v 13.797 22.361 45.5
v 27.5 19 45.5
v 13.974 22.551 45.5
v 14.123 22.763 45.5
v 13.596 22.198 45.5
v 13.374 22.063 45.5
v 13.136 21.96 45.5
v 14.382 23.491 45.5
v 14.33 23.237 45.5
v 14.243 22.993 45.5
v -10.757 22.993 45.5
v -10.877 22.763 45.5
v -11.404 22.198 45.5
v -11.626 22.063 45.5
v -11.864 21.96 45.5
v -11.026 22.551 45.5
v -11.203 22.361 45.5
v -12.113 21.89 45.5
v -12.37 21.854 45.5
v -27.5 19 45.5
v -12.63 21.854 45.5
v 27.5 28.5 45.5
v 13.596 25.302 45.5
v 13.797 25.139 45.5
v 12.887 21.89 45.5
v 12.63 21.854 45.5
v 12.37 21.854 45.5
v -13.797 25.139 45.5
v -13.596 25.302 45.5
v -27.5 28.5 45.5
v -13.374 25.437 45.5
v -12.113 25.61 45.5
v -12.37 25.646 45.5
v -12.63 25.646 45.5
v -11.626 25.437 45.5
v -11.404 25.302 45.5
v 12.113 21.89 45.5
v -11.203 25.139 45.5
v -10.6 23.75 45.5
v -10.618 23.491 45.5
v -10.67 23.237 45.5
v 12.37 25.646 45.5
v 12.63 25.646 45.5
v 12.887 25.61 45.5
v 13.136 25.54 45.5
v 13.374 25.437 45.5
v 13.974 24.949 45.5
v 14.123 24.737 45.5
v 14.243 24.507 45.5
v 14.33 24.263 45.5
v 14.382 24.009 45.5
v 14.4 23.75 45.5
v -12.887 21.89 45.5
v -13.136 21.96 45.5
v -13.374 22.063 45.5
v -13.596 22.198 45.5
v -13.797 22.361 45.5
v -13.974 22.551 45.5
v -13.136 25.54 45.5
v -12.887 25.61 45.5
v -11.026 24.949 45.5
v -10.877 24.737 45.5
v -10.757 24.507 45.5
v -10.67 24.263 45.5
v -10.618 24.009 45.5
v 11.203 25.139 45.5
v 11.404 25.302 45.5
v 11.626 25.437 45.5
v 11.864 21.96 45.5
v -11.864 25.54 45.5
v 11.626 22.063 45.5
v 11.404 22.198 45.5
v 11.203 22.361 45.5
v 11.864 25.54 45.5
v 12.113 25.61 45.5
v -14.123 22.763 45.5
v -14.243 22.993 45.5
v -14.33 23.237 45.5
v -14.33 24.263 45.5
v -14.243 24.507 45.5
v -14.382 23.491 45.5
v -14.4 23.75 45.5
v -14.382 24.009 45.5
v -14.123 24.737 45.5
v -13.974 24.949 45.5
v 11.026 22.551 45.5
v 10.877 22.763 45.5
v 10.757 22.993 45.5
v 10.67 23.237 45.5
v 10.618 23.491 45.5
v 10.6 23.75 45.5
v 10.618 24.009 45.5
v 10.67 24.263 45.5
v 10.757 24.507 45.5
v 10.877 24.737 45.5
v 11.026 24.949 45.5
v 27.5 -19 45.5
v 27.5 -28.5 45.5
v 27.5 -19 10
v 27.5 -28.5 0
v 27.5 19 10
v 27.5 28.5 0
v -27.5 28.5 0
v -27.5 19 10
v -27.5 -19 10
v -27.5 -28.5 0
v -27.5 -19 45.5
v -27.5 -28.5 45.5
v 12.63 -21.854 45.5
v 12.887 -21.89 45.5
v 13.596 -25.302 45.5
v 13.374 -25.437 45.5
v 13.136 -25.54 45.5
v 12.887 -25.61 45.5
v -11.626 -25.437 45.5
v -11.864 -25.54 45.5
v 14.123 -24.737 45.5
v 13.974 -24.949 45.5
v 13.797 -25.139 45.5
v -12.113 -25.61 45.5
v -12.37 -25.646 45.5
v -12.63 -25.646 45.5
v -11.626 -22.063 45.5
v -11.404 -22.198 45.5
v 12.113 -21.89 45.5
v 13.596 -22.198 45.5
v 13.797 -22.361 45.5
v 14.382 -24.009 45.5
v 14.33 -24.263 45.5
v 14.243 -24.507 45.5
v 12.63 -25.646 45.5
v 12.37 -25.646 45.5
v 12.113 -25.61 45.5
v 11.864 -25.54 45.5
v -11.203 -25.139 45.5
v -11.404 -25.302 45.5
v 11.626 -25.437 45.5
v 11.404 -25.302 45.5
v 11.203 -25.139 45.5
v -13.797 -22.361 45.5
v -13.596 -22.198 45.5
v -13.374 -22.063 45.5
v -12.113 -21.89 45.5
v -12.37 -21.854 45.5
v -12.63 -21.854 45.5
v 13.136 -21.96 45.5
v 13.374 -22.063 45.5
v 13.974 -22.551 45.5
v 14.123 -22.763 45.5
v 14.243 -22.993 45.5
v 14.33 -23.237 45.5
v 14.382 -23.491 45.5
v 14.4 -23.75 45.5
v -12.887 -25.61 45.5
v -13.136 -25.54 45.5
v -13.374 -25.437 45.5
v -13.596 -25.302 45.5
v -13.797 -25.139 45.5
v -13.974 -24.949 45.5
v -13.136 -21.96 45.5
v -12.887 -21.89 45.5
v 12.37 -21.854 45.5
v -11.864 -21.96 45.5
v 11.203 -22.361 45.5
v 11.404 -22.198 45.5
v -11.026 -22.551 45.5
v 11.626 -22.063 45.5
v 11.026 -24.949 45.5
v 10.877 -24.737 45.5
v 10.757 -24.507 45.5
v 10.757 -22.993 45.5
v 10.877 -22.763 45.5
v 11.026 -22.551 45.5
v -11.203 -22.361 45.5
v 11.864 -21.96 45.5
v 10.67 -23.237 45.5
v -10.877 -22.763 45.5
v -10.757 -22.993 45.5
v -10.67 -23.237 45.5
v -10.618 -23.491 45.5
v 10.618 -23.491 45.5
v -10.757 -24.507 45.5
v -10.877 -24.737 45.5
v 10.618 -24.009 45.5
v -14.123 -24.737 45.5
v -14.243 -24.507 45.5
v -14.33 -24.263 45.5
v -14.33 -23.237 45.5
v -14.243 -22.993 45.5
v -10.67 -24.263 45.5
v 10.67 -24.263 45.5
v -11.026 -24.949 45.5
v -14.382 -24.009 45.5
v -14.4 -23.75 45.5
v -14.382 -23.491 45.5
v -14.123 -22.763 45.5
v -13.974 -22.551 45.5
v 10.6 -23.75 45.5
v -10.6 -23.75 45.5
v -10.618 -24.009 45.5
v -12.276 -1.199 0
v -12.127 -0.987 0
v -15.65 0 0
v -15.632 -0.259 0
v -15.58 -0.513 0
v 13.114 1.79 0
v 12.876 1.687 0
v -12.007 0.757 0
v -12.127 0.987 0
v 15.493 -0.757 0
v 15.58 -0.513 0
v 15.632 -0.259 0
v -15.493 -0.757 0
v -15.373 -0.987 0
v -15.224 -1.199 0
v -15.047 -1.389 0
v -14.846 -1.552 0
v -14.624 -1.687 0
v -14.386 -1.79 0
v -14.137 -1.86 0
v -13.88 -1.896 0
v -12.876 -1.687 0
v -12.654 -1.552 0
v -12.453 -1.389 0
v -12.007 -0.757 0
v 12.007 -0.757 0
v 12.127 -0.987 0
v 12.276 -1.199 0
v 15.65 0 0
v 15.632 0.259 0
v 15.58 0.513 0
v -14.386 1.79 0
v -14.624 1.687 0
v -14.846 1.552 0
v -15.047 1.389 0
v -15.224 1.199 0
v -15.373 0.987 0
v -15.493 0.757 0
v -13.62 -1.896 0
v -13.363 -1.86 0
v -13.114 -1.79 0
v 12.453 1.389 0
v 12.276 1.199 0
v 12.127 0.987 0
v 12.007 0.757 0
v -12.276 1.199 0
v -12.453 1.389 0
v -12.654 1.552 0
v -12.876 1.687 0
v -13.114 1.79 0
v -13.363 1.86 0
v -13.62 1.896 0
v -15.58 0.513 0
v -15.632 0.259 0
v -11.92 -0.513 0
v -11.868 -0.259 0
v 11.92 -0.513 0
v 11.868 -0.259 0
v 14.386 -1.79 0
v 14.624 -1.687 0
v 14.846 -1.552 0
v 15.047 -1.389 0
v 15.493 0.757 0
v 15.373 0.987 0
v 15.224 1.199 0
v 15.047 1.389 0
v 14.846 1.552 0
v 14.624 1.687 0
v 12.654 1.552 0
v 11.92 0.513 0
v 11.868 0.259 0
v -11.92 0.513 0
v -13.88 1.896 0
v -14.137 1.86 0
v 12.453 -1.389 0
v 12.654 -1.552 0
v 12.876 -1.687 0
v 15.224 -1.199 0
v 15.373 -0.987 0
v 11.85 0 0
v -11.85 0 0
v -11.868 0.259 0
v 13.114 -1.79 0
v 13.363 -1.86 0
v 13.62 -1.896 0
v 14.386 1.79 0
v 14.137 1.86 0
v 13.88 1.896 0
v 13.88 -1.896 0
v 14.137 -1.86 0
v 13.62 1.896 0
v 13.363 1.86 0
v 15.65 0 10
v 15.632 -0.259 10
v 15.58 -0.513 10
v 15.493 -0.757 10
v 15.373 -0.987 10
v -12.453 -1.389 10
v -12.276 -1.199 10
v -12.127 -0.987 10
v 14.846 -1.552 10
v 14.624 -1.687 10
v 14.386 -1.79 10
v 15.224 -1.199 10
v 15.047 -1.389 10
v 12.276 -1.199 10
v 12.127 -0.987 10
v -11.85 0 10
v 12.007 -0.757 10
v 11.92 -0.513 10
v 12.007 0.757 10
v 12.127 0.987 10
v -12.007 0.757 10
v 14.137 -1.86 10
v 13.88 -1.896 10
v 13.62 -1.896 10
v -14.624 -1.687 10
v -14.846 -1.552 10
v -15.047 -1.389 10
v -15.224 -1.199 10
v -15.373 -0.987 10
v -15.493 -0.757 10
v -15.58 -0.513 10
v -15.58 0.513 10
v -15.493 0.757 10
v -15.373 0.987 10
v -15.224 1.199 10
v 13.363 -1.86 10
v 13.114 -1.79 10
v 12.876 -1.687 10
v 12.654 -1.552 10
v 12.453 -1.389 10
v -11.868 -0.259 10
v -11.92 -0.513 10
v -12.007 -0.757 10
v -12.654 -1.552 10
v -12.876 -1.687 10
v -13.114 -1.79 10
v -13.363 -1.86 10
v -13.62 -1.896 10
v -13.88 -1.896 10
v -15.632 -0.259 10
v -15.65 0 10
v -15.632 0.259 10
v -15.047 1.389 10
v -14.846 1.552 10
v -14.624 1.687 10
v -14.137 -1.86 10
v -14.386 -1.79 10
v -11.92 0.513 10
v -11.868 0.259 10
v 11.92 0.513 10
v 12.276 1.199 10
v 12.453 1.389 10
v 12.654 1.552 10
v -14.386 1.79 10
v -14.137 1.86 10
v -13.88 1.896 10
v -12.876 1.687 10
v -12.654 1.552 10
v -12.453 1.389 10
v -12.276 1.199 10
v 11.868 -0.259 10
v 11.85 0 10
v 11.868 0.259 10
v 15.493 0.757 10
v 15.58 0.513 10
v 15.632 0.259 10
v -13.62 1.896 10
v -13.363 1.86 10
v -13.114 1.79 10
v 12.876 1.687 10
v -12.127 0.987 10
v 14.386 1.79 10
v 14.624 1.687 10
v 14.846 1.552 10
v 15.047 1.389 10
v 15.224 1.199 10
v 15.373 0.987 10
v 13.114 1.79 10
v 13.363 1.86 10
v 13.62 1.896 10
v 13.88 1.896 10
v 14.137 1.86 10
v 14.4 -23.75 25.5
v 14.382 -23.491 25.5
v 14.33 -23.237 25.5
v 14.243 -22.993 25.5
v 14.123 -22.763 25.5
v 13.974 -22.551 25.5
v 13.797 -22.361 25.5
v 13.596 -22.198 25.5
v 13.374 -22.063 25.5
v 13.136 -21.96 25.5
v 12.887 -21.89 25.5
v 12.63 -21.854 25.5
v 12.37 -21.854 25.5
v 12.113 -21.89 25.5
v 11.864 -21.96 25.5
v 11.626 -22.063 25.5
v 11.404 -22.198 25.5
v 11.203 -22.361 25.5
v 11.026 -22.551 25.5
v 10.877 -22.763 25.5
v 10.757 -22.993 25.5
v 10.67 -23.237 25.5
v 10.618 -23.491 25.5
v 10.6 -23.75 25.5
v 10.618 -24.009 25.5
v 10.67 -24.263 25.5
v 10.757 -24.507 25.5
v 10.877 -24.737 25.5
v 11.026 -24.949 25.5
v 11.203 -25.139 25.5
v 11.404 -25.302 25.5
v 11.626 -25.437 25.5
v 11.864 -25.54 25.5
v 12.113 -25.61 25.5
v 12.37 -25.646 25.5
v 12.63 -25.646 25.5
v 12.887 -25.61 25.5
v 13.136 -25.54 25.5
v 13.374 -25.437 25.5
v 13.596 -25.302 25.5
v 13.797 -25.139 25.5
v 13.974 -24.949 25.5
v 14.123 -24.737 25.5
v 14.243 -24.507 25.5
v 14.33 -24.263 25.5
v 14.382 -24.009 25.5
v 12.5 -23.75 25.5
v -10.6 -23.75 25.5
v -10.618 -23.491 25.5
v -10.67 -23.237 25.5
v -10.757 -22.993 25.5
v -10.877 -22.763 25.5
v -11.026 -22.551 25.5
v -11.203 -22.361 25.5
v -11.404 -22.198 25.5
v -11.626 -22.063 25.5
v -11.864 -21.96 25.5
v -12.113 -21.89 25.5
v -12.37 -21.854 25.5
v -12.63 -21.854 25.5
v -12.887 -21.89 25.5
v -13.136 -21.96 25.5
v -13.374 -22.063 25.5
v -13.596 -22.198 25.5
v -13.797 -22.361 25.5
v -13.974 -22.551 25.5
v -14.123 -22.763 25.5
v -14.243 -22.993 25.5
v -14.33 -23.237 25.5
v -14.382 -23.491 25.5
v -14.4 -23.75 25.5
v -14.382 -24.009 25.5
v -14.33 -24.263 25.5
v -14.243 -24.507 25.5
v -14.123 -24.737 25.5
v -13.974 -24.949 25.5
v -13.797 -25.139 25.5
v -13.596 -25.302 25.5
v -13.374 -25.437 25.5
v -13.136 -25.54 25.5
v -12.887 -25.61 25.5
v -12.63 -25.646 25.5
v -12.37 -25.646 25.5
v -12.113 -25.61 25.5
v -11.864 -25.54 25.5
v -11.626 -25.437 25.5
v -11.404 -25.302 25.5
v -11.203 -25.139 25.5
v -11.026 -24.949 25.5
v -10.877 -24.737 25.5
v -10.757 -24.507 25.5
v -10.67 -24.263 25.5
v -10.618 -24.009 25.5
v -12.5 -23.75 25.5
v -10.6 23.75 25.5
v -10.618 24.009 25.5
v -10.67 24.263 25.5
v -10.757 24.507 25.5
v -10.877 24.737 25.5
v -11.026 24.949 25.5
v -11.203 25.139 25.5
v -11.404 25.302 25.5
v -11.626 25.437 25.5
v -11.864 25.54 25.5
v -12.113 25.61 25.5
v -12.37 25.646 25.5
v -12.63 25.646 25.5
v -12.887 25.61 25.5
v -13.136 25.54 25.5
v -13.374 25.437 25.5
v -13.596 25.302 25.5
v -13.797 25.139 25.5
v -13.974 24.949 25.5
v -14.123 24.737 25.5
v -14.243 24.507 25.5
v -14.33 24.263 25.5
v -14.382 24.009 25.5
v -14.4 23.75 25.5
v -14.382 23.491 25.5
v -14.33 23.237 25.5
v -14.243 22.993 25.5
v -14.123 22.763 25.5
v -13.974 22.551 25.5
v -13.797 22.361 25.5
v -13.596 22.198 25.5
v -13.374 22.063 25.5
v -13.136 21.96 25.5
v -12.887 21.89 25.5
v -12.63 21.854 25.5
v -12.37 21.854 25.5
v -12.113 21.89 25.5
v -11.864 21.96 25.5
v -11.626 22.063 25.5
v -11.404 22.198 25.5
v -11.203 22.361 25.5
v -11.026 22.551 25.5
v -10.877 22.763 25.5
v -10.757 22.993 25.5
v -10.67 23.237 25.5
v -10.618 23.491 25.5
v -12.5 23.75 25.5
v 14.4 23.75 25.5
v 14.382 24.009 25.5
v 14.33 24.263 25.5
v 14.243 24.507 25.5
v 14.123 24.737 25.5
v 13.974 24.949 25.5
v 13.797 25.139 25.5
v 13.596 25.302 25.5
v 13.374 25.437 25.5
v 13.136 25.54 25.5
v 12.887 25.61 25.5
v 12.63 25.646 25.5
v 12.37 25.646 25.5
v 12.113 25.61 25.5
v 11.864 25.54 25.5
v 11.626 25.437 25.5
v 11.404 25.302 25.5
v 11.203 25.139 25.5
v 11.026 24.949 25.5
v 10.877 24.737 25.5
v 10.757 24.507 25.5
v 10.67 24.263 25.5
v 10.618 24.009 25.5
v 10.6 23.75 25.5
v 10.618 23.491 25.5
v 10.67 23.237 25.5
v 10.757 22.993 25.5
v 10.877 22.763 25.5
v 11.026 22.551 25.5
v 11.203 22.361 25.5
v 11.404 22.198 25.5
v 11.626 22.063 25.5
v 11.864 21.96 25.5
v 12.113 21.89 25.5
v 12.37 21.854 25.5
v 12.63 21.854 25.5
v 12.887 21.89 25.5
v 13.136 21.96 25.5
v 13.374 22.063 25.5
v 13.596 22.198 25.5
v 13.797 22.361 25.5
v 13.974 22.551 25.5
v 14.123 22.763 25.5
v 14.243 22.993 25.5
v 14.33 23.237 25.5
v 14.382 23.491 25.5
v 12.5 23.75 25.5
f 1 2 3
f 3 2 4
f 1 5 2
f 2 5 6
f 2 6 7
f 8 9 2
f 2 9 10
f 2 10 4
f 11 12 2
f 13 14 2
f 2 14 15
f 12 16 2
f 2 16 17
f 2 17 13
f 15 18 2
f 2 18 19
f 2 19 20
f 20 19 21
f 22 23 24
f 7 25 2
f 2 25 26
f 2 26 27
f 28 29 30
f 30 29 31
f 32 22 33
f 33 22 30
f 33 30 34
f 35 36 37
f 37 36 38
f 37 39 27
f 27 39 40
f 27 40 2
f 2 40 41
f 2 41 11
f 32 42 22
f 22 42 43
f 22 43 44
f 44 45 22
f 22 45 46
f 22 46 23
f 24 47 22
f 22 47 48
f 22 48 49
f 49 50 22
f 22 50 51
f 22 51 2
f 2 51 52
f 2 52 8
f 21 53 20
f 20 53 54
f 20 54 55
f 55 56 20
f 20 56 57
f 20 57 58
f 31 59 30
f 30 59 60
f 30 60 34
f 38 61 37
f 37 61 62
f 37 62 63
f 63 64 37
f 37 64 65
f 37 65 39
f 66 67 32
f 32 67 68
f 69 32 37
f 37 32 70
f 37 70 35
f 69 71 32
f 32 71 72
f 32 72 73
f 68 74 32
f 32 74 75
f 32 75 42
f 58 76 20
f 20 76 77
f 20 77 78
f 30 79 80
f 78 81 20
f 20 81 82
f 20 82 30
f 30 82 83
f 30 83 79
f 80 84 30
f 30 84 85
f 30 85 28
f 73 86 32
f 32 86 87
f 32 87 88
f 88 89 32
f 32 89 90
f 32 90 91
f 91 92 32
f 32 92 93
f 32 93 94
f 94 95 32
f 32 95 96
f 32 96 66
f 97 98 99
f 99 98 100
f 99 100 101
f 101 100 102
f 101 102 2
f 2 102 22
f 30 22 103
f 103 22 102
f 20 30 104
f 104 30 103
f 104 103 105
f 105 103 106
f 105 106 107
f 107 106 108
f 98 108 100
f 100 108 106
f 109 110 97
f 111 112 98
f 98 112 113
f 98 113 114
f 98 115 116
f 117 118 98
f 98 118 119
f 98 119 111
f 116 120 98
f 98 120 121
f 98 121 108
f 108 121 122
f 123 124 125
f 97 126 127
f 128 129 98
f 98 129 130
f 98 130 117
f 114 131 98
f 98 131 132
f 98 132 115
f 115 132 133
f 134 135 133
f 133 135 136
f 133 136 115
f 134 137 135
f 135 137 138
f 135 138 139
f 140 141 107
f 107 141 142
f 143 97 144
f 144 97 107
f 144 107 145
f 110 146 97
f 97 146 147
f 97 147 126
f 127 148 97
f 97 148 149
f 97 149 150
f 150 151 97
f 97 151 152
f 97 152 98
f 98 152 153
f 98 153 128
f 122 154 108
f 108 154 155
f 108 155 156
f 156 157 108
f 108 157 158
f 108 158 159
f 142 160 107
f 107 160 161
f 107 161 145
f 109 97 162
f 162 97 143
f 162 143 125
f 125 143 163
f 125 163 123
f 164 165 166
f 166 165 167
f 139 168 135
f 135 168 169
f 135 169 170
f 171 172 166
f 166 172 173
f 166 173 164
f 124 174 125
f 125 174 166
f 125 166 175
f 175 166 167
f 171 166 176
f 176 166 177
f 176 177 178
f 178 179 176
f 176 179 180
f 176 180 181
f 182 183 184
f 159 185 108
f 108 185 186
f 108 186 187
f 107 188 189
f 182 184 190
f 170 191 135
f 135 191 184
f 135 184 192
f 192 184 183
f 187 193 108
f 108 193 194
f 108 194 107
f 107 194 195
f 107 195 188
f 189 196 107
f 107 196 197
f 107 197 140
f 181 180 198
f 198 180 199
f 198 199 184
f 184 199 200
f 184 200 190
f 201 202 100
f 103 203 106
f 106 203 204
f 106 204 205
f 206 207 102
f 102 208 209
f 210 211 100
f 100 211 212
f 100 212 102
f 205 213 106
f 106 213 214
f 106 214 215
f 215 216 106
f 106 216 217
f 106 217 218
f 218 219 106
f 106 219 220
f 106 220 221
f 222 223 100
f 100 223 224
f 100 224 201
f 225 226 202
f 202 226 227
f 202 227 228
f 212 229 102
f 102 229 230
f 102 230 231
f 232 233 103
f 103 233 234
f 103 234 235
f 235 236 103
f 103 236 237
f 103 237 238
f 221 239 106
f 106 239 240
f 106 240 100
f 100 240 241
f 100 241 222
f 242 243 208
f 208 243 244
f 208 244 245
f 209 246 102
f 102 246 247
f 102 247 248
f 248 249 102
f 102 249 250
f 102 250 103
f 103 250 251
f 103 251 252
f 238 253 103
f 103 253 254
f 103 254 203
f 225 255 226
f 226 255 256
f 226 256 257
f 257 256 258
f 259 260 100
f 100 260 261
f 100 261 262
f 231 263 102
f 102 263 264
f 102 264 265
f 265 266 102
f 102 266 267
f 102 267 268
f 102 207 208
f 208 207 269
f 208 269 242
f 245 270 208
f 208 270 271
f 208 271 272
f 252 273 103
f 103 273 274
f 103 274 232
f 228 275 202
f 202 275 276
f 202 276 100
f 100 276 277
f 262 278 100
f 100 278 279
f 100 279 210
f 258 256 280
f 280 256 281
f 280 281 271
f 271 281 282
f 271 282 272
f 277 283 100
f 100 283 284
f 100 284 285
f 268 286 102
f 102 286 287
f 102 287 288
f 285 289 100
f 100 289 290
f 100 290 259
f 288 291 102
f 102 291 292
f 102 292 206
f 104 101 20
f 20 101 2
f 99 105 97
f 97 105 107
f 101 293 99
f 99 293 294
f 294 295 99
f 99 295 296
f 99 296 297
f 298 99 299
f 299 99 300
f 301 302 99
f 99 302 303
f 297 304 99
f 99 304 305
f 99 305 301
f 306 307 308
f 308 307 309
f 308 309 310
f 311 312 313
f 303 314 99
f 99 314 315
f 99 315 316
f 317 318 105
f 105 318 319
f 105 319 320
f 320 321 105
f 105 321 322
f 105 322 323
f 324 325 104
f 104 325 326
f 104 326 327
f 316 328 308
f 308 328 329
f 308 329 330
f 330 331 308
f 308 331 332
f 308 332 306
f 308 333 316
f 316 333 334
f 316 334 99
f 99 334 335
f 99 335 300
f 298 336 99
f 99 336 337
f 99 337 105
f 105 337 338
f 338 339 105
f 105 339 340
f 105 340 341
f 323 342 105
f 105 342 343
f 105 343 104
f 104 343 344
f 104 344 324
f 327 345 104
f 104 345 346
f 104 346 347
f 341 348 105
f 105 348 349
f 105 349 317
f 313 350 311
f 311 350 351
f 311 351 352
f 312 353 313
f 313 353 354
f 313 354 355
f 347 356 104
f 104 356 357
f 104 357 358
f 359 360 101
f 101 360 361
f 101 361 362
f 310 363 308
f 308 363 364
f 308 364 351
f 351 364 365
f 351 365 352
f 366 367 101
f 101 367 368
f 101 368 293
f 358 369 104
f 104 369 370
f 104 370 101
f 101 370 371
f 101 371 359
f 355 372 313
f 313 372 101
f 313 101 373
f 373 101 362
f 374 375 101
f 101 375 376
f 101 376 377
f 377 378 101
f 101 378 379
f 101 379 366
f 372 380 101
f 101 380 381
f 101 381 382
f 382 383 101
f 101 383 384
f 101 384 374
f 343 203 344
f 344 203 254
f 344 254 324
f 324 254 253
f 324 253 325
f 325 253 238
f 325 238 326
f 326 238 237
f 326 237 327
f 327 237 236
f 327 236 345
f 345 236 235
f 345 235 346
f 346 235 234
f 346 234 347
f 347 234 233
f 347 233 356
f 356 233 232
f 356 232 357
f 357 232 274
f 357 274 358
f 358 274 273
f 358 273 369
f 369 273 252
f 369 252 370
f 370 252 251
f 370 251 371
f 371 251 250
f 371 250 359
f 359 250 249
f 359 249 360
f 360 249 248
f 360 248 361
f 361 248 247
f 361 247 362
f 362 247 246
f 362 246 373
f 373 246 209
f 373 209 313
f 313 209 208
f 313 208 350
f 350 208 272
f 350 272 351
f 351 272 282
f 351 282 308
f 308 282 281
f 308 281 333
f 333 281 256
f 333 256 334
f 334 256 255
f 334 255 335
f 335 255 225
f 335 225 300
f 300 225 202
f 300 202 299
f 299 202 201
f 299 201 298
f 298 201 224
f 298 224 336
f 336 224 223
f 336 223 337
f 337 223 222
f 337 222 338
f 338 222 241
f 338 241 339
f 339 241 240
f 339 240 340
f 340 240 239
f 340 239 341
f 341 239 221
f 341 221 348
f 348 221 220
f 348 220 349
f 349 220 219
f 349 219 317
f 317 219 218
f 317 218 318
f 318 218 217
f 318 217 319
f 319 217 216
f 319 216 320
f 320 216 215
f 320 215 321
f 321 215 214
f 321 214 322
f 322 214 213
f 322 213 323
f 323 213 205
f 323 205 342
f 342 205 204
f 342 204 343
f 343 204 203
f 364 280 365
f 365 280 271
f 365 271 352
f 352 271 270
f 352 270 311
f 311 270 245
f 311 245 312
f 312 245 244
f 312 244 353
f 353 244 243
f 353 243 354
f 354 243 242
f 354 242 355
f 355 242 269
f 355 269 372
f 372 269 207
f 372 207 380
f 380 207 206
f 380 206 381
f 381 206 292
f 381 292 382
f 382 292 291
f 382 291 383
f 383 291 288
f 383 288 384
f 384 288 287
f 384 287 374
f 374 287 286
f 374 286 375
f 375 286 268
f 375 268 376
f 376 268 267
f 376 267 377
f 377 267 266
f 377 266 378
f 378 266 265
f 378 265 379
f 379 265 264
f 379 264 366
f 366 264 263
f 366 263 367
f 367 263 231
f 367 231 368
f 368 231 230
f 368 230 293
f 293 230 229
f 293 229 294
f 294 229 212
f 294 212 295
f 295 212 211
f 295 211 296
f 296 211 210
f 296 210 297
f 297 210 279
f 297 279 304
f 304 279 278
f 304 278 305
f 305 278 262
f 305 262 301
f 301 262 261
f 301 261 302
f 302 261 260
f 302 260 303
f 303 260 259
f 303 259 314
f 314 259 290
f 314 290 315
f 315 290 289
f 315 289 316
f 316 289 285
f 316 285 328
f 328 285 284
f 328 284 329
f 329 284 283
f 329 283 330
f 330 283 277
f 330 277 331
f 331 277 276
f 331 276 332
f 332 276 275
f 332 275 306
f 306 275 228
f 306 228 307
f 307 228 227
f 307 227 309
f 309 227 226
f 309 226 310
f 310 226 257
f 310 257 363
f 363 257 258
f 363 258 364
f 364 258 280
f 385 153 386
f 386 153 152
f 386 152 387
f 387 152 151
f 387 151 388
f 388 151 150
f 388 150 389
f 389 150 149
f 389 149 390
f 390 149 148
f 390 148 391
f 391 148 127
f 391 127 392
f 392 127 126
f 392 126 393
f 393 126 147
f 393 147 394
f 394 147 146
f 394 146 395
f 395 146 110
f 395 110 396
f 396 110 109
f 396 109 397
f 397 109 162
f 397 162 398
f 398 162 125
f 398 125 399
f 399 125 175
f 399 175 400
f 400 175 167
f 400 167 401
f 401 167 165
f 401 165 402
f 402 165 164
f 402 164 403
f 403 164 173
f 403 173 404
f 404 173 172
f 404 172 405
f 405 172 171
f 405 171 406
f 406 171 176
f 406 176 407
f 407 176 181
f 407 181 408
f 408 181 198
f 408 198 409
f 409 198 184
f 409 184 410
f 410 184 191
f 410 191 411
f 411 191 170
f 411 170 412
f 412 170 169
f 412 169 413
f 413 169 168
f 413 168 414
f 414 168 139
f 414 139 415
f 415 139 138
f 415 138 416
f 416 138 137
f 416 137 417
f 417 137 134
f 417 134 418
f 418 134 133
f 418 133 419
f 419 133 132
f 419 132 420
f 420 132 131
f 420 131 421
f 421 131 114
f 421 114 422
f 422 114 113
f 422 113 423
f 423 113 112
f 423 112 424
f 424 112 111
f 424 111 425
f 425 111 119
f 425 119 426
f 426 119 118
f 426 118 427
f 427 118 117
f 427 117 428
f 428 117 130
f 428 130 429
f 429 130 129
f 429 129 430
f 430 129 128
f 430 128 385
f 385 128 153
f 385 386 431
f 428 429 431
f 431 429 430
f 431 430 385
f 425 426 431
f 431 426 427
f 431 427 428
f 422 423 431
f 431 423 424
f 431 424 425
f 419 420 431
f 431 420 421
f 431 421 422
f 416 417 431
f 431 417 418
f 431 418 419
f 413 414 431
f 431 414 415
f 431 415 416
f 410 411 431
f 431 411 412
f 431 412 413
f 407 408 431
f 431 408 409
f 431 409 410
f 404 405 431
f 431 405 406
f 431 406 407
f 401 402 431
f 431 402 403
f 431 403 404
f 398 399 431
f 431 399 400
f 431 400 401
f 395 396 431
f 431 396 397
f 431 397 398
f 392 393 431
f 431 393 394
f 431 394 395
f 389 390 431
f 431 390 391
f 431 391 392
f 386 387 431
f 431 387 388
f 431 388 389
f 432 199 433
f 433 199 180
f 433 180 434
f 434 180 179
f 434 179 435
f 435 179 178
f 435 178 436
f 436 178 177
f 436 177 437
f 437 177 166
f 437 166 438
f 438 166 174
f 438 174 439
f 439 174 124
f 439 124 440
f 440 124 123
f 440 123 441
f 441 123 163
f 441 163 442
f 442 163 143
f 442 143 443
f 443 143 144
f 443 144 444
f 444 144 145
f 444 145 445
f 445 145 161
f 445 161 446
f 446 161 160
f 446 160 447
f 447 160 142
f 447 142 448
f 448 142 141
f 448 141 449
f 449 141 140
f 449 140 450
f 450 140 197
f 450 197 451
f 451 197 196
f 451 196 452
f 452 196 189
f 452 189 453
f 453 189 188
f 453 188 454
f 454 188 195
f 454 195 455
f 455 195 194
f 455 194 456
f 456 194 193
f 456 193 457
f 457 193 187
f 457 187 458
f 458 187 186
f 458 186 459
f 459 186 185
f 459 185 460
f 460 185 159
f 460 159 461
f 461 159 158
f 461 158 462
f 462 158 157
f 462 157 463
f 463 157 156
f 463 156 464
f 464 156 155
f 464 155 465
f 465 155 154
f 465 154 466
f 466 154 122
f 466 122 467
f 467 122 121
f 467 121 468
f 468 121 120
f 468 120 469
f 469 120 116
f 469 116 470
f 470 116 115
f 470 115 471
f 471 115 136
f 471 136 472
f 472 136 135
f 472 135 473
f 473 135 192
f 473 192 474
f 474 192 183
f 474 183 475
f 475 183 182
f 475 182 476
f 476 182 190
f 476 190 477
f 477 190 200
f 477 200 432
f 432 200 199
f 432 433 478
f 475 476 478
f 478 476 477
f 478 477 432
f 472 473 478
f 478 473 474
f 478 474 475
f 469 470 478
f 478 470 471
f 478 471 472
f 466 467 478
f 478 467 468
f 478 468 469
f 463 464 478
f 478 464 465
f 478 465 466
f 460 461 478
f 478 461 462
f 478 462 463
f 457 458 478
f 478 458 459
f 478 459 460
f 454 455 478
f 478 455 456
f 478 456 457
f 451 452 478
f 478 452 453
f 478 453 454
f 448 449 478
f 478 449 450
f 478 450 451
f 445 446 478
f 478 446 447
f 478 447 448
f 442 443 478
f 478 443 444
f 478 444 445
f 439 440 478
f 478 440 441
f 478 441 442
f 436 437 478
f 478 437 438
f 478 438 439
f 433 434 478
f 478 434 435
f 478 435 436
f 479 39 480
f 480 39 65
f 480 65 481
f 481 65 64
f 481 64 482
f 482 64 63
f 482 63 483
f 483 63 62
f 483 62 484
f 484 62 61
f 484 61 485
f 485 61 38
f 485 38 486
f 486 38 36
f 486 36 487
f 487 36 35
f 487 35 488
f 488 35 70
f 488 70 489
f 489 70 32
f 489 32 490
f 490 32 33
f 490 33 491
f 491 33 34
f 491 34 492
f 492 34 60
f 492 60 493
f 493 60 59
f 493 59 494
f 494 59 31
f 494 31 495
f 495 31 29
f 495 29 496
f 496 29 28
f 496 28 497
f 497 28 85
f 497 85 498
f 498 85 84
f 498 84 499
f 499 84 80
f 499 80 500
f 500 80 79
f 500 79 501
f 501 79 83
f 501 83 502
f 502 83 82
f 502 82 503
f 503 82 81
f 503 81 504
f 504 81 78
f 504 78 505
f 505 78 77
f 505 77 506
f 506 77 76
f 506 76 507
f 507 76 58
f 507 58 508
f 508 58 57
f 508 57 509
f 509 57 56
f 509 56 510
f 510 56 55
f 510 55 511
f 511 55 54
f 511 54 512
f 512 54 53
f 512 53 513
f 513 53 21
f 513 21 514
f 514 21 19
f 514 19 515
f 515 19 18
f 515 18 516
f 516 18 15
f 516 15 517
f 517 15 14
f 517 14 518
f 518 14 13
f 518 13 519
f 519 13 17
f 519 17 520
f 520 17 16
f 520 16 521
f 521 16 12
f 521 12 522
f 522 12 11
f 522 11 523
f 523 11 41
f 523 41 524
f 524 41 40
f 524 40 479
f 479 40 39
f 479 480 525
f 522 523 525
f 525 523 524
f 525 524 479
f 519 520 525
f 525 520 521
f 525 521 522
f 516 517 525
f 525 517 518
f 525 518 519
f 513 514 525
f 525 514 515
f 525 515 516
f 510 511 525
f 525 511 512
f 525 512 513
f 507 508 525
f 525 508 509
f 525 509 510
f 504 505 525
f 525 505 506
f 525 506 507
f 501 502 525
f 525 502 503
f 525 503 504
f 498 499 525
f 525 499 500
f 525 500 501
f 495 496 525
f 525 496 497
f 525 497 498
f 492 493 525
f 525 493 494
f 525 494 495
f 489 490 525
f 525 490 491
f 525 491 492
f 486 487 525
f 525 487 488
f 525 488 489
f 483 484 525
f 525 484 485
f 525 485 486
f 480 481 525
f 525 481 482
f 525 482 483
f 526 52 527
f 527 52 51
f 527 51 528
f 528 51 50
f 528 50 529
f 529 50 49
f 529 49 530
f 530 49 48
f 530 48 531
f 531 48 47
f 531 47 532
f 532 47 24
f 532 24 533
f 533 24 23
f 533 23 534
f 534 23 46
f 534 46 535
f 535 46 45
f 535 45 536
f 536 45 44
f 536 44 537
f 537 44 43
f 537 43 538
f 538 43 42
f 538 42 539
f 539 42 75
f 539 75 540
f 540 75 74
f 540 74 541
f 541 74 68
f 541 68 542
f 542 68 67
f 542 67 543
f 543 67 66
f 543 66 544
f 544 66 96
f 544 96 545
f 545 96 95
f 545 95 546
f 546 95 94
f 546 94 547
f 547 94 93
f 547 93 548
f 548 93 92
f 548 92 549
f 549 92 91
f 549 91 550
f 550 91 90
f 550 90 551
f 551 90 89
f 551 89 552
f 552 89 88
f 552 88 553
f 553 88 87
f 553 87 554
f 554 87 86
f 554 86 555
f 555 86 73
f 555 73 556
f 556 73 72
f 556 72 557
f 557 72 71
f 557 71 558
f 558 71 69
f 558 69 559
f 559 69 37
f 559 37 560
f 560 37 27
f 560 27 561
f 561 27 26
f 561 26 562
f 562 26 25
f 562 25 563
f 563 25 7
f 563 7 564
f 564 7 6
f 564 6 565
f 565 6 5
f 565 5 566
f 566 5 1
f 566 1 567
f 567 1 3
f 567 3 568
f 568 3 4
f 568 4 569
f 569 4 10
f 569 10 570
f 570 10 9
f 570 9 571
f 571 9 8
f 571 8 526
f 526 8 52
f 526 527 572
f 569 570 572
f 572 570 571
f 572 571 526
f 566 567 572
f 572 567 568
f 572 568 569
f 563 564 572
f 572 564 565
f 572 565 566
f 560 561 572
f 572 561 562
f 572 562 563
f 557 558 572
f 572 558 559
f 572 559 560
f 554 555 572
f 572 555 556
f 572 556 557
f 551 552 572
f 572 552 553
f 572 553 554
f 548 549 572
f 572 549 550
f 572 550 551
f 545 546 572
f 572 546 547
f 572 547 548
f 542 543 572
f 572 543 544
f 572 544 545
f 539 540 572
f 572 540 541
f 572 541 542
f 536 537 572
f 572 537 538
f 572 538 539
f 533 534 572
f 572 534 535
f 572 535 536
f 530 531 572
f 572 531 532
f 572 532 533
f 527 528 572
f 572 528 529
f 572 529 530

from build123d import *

# Parameters (mm, degrees)
SKETCH1_W           = 55
SKETCH1_H           = 57
BOSS_EXTRUDE1_DEPTH = 45.5
SKETCH2_W           = 55
SKETCH2_H           = 38
CUT_EXTRUDE1_DEPTH  = 35.5
SKETCH3_R           = 1.9
CUT_EXTRUDE2_DEPTH  = 10
SKETCH4_R           = 1.9
CUT_EXTRUDE3_DEPTH  = 20


with BuildPart() as part:
    # Sketch1 → Boss-Extrude1 (new body)
    with BuildSketch(Plane.XY):
        Rectangle(SKETCH1_W, SKETCH1_H)
    extrude(amount=BOSS_EXTRUDE1_DEPTH)

    # Sketch2 → Cut-Extrude1 (cut)
    with BuildSketch(Plane.XY.offset(45.5)):
        Rectangle(SKETCH2_W, SKETCH2_H)
    extrude(amount=-CUT_EXTRUDE1_DEPTH, mode=Mode.SUBTRACT)

    # Sketch3 → Cut-Extrude2 (cut)
    with BuildSketch(Plane(origin=(0, 0, 0), x_dir=(-1, 0, 0), z_dir=(0, 0, -1))):
        with Locations((-13.75, 0)):
            Circle(SKETCH3_R)
        with Locations((13.75, 0)):
            Circle(SKETCH3_R)
    extrude(amount=-CUT_EXTRUDE2_DEPTH, mode=Mode.SUBTRACT)

    # Sketch4 → Cut-Extrude3 (cut)
    with BuildSketch(Plane.XY.offset(45.5)):
        with Locations((-12.5, 23.75)):
            Circle(SKETCH4_R)
        with Locations((12.5, 23.75)):
            Circle(SKETCH4_R)
        with Locations((-12.5, -23.75)):
            Circle(SKETCH4_R)
        with Locations((12.5, -23.75)):
            Circle(SKETCH4_R)
    extrude(amount=-CUT_EXTRUDE3_DEPTH, mode=Mode.SUBTRACT)


solid = part.part
